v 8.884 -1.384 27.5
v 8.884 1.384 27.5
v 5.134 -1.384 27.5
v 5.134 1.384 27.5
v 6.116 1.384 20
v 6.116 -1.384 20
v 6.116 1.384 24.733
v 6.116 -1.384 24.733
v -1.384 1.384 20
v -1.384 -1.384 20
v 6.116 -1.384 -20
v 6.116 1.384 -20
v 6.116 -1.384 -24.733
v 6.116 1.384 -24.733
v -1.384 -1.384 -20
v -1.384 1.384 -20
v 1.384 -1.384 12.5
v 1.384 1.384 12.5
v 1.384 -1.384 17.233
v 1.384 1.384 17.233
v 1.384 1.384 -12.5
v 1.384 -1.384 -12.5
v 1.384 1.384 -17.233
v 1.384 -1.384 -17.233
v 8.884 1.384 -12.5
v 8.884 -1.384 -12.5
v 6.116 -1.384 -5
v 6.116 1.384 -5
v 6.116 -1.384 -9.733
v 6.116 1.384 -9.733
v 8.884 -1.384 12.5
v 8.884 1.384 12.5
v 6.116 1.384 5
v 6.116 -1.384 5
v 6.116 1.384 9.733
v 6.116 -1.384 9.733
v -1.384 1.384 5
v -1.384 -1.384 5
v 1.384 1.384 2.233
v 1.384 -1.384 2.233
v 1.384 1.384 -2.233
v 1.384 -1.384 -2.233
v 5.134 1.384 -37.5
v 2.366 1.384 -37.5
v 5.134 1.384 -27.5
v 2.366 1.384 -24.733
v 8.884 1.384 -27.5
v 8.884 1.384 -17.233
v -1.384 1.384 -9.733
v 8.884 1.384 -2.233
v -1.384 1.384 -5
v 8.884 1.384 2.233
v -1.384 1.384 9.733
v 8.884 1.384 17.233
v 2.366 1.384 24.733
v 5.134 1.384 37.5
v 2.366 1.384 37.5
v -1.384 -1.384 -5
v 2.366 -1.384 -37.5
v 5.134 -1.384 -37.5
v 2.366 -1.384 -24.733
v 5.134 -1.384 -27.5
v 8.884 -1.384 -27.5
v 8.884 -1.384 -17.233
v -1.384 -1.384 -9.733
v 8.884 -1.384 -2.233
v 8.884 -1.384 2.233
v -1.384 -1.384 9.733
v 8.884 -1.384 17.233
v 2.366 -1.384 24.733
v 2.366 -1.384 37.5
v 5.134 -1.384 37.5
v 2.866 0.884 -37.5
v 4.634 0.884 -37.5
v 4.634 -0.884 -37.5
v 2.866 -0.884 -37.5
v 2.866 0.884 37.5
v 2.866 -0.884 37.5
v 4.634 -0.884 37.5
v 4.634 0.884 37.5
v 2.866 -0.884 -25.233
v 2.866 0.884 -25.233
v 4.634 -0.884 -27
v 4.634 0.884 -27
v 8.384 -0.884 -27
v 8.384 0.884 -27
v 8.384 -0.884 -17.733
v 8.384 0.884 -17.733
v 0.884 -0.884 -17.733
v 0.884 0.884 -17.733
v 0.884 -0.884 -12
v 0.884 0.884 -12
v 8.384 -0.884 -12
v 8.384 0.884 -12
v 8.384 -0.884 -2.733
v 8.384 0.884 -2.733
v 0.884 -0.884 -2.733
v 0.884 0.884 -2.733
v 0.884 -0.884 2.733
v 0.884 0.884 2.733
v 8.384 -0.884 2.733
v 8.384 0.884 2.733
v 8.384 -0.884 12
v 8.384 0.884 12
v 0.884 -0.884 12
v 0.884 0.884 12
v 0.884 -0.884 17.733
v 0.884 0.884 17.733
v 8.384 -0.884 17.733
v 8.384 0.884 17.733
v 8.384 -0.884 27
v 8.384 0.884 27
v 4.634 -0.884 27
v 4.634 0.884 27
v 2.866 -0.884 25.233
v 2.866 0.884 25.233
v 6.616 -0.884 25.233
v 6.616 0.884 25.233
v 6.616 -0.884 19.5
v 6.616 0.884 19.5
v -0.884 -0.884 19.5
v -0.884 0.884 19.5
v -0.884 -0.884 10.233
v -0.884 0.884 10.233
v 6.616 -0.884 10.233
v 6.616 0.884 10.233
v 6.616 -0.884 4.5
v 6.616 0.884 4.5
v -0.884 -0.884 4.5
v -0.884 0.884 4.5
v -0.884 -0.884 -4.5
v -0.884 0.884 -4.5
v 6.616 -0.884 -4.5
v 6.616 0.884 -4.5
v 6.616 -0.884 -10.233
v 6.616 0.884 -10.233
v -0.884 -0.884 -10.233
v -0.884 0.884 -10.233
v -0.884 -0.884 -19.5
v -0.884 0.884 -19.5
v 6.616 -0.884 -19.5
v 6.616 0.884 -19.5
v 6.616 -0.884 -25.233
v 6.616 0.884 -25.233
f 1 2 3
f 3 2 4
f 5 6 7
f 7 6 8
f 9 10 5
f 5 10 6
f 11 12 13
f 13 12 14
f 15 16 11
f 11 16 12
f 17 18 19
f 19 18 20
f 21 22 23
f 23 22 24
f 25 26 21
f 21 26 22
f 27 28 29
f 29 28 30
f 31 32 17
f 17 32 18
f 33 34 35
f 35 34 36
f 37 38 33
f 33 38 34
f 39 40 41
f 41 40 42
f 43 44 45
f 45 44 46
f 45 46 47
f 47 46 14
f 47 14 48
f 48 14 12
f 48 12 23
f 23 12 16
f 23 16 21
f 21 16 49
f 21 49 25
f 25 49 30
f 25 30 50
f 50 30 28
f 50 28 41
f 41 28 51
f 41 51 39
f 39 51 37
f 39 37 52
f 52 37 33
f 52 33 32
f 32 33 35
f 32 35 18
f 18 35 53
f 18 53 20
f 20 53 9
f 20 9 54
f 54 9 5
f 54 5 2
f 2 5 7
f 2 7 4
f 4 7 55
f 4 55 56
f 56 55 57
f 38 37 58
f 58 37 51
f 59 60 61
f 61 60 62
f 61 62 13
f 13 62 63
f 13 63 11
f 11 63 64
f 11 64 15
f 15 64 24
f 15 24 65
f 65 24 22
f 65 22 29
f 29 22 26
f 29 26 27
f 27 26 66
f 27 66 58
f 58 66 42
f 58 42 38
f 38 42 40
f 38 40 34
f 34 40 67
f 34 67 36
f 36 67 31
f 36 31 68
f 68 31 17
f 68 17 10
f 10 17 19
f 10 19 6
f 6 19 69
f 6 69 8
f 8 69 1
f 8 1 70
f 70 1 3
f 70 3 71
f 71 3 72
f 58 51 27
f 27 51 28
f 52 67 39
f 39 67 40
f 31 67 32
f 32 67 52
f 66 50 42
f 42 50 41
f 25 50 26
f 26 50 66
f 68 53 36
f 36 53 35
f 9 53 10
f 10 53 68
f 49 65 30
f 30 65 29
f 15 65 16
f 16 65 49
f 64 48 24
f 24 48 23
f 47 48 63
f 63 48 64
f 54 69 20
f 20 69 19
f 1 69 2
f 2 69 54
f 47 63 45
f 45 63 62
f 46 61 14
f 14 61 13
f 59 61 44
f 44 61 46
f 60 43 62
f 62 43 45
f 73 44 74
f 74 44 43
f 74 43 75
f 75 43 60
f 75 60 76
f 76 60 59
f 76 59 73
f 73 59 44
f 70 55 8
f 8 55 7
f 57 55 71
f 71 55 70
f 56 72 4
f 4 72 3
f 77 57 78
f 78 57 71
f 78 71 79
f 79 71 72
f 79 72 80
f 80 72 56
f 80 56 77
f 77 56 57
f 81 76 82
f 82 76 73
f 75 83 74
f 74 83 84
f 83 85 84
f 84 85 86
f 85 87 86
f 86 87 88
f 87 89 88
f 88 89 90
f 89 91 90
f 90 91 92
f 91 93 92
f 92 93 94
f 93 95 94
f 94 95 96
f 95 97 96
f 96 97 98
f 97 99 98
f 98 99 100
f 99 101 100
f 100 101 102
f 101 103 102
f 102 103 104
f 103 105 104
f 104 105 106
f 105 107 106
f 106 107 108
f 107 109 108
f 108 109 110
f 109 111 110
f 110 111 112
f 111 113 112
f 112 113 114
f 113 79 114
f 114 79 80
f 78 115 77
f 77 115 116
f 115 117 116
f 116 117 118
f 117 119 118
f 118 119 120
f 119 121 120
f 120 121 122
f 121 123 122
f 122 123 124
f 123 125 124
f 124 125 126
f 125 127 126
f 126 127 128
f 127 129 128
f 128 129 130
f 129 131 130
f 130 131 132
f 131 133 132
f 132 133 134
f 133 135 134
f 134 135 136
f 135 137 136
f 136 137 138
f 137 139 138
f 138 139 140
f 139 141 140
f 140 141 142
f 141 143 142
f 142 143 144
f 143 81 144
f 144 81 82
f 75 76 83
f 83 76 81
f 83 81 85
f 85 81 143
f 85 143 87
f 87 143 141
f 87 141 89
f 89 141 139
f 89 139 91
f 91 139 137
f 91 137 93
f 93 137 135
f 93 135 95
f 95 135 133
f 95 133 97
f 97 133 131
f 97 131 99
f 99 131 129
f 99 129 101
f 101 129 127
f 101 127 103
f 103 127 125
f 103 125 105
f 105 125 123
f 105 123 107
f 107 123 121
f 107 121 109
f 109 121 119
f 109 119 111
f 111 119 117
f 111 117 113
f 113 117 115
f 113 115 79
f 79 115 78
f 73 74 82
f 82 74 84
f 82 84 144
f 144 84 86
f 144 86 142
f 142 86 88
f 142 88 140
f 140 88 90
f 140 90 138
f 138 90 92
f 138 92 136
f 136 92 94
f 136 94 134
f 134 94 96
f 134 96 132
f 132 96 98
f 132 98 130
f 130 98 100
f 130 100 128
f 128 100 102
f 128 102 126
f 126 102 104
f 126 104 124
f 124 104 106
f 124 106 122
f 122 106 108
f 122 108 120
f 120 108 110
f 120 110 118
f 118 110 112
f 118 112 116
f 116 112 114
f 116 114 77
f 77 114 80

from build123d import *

# Parameters (mm, degrees)
SKETCH3_W            = 2.76715
SKETCH3_H            = 2.76715
BOSS_EXTRUDE1_DEPTH  = 5
SKETCH4_W            = 2.76715
SKETCH4_H            = 2.76715
BOSS_EXTRUDE2_DEPTH  = 7.5
SKETCH5_W            = 2.76715
SKETCH5_H            = 2.76715
BOSS_EXTRUDE3_DEPTH  = 7.5
SKETCH6_W            = 2.76715
SKETCH6_H            = 2.76715
BOSS_EXTRUDE4_DEPTH  = 7.5
SKETCH7_W            = 2.76715
SKETCH7_H            = 2.76715
BOSS_EXTRUDE5_DEPTH  = 7.5
SKETCH8_W            = 2.76715
SKETCH8_H            = 2.76715
BOSS_EXTRUDE6_DEPTH  = 7.5
SKETCH9_W            = 2.76715
SKETCH9_H            = 2.76715
BOSS_EXTRUDE7_DEPTH  = 7.5
SKETCH10_W           = 2.76715
SKETCH10_H           = 2.76715
BOSS_EXTRUDE8_DEPTH  = 7.5
SKETCH11_W           = 2.76715
SKETCH11_H           = 2.76715
BOSS_EXTRUDE9_DEPTH  = 7.5
SKETCH12_W           = 2.76715
SKETCH12_H           = 2.76715
BOSS_EXTRUDE10_DEPTH = 7.5
SKETCH13_W           = 2.76715
SKETCH13_H           = 2.76715
BOSS_EXTRUDE11_DEPTH = 3.75
SKETCH14_W           = 2.76715
SKETCH14_H           = 2.76715
BOSS_EXTRUDE12_DEPTH = 10
SKETCH15_W           = 2.76715
SKETCH15_H           = 2.76715
BOSS_EXTRUDE13_DEPTH = 7.5
SKETCH16_W           = 2.76715
SKETCH16_H           = 2.76715
BOSS_EXTRUDE14_DEPTH = 3.75
SKETCH17_W           = 2.76715
SKETCH17_H           = 2.76715
BOSS_EXTRUDE15_DEPTH = 10
CUT_EXTRUDE3_START   = -0.5
CUT_EXTRUDE3_DEPTH   = 1.76715


with BuildPart() as part:
    # Sketch3 → Boss-Extrude1 (new, symmetric)
    with BuildSketch(Plane.XY):
        Rectangle(SKETCH3_W, SKETCH3_H)
    extrude(amount=BOSS_EXTRUDE1_DEPTH, both=True)

    # Sketch4 → Boss-Extrude2 (add)
    with BuildSketch(Plane(origin=(1.383575, 0, 0), x_dir=(0, 0, -1), z_dir=(1, 0, 0))):
        with Locations((-3.616425, 0)):
            Rectangle(SKETCH4_W, SKETCH4_H)
        with Locations((3.616425, 0)):
            Rectangle(SKETCH4_W, SKETCH4_H)
    extrude(amount=BOSS_EXTRUDE2_DEPTH)

    # Sketch5 → Boss-Extrude3 (add)
    with BuildSketch(Plane.XY.offset(5)):
        with Locations((7.5, 0)):
            Rectangle(SKETCH5_W, SKETCH5_H)
    extrude(amount=BOSS_EXTRUDE3_DEPTH)

    # Sketch6 → Boss-Extrude4 (add)
    with BuildSketch(Plane.ZY.offset(-6.116425)):
        with Locations((11.116425, 0)):
            Rectangle(SKETCH6_W, SKETCH6_H)
    extrude(amount=BOSS_EXTRUDE4_DEPTH)

    # Sketch7 → Boss-Extrude5 (add)
    with BuildSketch(Plane.XY.offset(12.5)):
        Rectangle(SKETCH7_W, SKETCH7_H)
    extrude(amount=BOSS_EXTRUDE5_DEPTH)

    # Sketch8 → Boss-Extrude6 (add)
    with BuildSketch(Plane(origin=(0, 0, -5), x_dir=(-1, 0, 0), z_dir=(0, 0, -1))):
        with Locations((-7.5, 0)):
            Rectangle(SKETCH8_W, SKETCH8_H)
    extrude(amount=BOSS_EXTRUDE6_DEPTH)

    # Sketch9 → Boss-Extrude7 (add)
    with BuildSketch(Plane.ZY.offset(-6.116425)):
        with Locations((-11.116425, 0)):
            Rectangle(SKETCH9_W, SKETCH9_H)
    extrude(amount=BOSS_EXTRUDE7_DEPTH)

    # Sketch10 → Boss-Extrude8 (add)
    with BuildSketch(Plane(origin=(0, 0, -12.5), x_dir=(-1, 0, 0), z_dir=(0, 0, -1))):
        Rectangle(SKETCH10_W, SKETCH10_H)
    extrude(amount=BOSS_EXTRUDE8_DEPTH)

    # Sketch11 → Boss-Extrude9 (add)
    with BuildSketch(Plane(origin=(1.383575, 0, 0), x_dir=(0, 0, -1), z_dir=(1, 0, 0))):
        with Locations((18.616425, 0)):
            Rectangle(SKETCH11_W, SKETCH11_H)
        with Locations((-18.616425, 0)):
            Rectangle(SKETCH11_W, SKETCH11_H)
    extrude(amount=BOSS_EXTRUDE9_DEPTH)

    # Sketch12 → Boss-Extrude10 (add)
    with BuildSketch(Plane(origin=(0, 0, -20), x_dir=(-1, 0, 0), z_dir=(0, 0, -1))):
        with Locations((-7.5, 0)):
            Rectangle(SKETCH12_W, SKETCH12_H)
    extrude(amount=BOSS_EXTRUDE10_DEPTH)

    # Sketch13 → Boss-Extrude11 (add)
    with BuildSketch(Plane.ZY.offset(-6.116425)):
        with Locations((-26.116425, 0)):
            Rectangle(SKETCH13_W, SKETCH13_H)
    extrude(amount=BOSS_EXTRUDE11_DEPTH)

    # Sketch14 → Boss-Extrude12 (add)
    with BuildSketch(Plane(origin=(0, 0, -27.5), x_dir=(-1, 0, 0), z_dir=(0, 0, -1))):
        with Locations((-3.75, 0)):
            Rectangle(SKETCH14_W, SKETCH14_H)
    extrude(amount=BOSS_EXTRUDE12_DEPTH)

    # Sketch15 → Boss-Extrude13 (add)
    with BuildSketch(Plane.XY.offset(20)):
        with Locations((7.5, 0)):
            Rectangle(SKETCH15_W, SKETCH15_H)
    extrude(amount=BOSS_EXTRUDE13_DEPTH)

    # Sketch16 → Boss-Extrude14 (add)
    with BuildSketch(Plane.ZY.offset(-6.116425)):
        with Locations((26.116425, 0)):
            Rectangle(SKETCH16_W, SKETCH16_H)
    extrude(amount=BOSS_EXTRUDE14_DEPTH)

    # Sketch17 → Boss-Extrude15 (add)
    with BuildSketch(Plane.XY.offset(27.5)):
        with Locations((3.75, 0)):
            Rectangle(SKETCH17_W, SKETCH17_H)
    extrude(amount=BOSS_EXTRUDE15_DEPTH)

    # Sketch23 → Cut-Extrude3 (cut)
    with BuildSketch(Plane(origin=(0, 1.383575, 0), x_dir=(1, 0, 0), z_dir=(0, 1, 0)).offset(CUT_EXTRUDE3_START)):
        Polygon((2.866425, 37.5), (4.633575, 37.5), (4.633575, 27), (8.383575, 27), (8.383575, 17.73285), (0.883575, 17.73285), (0.883575, 12), (8.383575, 12), (8.383575, 2.73285), (0.883575, 2.73285), (0.883575, -2.73285), (8.383575, -2.73285), (8.383575, -12), (0.883575, -12), (0.883575, -17.73285), (8.383575, -17.73285), (8.383575, -27), (4.633575, -27), (4.633575, -37.5), (2.866425, -37.5), (2.866425, -25.23285), (6.616425, -25.23285), (6.616425, -19.5), (-0.883575, -19.5), (-0.883575, -10.23285), (6.616425, -10.23285), (6.616425, -4.5), (-0.883575, -4.5), (-0.883575, 4.5), (6.616425, 4.5), (6.616425, 10.23285), (-0.883575, 10.23285), (-0.883575, 19.5), (6.616425, 19.5), (6.616425, 25.23285), (2.866425, 25.23285), align=None)
    extrude(amount=-CUT_EXTRUDE3_DEPTH, mode=Mode.SUBTRACT)


solid = part.part
